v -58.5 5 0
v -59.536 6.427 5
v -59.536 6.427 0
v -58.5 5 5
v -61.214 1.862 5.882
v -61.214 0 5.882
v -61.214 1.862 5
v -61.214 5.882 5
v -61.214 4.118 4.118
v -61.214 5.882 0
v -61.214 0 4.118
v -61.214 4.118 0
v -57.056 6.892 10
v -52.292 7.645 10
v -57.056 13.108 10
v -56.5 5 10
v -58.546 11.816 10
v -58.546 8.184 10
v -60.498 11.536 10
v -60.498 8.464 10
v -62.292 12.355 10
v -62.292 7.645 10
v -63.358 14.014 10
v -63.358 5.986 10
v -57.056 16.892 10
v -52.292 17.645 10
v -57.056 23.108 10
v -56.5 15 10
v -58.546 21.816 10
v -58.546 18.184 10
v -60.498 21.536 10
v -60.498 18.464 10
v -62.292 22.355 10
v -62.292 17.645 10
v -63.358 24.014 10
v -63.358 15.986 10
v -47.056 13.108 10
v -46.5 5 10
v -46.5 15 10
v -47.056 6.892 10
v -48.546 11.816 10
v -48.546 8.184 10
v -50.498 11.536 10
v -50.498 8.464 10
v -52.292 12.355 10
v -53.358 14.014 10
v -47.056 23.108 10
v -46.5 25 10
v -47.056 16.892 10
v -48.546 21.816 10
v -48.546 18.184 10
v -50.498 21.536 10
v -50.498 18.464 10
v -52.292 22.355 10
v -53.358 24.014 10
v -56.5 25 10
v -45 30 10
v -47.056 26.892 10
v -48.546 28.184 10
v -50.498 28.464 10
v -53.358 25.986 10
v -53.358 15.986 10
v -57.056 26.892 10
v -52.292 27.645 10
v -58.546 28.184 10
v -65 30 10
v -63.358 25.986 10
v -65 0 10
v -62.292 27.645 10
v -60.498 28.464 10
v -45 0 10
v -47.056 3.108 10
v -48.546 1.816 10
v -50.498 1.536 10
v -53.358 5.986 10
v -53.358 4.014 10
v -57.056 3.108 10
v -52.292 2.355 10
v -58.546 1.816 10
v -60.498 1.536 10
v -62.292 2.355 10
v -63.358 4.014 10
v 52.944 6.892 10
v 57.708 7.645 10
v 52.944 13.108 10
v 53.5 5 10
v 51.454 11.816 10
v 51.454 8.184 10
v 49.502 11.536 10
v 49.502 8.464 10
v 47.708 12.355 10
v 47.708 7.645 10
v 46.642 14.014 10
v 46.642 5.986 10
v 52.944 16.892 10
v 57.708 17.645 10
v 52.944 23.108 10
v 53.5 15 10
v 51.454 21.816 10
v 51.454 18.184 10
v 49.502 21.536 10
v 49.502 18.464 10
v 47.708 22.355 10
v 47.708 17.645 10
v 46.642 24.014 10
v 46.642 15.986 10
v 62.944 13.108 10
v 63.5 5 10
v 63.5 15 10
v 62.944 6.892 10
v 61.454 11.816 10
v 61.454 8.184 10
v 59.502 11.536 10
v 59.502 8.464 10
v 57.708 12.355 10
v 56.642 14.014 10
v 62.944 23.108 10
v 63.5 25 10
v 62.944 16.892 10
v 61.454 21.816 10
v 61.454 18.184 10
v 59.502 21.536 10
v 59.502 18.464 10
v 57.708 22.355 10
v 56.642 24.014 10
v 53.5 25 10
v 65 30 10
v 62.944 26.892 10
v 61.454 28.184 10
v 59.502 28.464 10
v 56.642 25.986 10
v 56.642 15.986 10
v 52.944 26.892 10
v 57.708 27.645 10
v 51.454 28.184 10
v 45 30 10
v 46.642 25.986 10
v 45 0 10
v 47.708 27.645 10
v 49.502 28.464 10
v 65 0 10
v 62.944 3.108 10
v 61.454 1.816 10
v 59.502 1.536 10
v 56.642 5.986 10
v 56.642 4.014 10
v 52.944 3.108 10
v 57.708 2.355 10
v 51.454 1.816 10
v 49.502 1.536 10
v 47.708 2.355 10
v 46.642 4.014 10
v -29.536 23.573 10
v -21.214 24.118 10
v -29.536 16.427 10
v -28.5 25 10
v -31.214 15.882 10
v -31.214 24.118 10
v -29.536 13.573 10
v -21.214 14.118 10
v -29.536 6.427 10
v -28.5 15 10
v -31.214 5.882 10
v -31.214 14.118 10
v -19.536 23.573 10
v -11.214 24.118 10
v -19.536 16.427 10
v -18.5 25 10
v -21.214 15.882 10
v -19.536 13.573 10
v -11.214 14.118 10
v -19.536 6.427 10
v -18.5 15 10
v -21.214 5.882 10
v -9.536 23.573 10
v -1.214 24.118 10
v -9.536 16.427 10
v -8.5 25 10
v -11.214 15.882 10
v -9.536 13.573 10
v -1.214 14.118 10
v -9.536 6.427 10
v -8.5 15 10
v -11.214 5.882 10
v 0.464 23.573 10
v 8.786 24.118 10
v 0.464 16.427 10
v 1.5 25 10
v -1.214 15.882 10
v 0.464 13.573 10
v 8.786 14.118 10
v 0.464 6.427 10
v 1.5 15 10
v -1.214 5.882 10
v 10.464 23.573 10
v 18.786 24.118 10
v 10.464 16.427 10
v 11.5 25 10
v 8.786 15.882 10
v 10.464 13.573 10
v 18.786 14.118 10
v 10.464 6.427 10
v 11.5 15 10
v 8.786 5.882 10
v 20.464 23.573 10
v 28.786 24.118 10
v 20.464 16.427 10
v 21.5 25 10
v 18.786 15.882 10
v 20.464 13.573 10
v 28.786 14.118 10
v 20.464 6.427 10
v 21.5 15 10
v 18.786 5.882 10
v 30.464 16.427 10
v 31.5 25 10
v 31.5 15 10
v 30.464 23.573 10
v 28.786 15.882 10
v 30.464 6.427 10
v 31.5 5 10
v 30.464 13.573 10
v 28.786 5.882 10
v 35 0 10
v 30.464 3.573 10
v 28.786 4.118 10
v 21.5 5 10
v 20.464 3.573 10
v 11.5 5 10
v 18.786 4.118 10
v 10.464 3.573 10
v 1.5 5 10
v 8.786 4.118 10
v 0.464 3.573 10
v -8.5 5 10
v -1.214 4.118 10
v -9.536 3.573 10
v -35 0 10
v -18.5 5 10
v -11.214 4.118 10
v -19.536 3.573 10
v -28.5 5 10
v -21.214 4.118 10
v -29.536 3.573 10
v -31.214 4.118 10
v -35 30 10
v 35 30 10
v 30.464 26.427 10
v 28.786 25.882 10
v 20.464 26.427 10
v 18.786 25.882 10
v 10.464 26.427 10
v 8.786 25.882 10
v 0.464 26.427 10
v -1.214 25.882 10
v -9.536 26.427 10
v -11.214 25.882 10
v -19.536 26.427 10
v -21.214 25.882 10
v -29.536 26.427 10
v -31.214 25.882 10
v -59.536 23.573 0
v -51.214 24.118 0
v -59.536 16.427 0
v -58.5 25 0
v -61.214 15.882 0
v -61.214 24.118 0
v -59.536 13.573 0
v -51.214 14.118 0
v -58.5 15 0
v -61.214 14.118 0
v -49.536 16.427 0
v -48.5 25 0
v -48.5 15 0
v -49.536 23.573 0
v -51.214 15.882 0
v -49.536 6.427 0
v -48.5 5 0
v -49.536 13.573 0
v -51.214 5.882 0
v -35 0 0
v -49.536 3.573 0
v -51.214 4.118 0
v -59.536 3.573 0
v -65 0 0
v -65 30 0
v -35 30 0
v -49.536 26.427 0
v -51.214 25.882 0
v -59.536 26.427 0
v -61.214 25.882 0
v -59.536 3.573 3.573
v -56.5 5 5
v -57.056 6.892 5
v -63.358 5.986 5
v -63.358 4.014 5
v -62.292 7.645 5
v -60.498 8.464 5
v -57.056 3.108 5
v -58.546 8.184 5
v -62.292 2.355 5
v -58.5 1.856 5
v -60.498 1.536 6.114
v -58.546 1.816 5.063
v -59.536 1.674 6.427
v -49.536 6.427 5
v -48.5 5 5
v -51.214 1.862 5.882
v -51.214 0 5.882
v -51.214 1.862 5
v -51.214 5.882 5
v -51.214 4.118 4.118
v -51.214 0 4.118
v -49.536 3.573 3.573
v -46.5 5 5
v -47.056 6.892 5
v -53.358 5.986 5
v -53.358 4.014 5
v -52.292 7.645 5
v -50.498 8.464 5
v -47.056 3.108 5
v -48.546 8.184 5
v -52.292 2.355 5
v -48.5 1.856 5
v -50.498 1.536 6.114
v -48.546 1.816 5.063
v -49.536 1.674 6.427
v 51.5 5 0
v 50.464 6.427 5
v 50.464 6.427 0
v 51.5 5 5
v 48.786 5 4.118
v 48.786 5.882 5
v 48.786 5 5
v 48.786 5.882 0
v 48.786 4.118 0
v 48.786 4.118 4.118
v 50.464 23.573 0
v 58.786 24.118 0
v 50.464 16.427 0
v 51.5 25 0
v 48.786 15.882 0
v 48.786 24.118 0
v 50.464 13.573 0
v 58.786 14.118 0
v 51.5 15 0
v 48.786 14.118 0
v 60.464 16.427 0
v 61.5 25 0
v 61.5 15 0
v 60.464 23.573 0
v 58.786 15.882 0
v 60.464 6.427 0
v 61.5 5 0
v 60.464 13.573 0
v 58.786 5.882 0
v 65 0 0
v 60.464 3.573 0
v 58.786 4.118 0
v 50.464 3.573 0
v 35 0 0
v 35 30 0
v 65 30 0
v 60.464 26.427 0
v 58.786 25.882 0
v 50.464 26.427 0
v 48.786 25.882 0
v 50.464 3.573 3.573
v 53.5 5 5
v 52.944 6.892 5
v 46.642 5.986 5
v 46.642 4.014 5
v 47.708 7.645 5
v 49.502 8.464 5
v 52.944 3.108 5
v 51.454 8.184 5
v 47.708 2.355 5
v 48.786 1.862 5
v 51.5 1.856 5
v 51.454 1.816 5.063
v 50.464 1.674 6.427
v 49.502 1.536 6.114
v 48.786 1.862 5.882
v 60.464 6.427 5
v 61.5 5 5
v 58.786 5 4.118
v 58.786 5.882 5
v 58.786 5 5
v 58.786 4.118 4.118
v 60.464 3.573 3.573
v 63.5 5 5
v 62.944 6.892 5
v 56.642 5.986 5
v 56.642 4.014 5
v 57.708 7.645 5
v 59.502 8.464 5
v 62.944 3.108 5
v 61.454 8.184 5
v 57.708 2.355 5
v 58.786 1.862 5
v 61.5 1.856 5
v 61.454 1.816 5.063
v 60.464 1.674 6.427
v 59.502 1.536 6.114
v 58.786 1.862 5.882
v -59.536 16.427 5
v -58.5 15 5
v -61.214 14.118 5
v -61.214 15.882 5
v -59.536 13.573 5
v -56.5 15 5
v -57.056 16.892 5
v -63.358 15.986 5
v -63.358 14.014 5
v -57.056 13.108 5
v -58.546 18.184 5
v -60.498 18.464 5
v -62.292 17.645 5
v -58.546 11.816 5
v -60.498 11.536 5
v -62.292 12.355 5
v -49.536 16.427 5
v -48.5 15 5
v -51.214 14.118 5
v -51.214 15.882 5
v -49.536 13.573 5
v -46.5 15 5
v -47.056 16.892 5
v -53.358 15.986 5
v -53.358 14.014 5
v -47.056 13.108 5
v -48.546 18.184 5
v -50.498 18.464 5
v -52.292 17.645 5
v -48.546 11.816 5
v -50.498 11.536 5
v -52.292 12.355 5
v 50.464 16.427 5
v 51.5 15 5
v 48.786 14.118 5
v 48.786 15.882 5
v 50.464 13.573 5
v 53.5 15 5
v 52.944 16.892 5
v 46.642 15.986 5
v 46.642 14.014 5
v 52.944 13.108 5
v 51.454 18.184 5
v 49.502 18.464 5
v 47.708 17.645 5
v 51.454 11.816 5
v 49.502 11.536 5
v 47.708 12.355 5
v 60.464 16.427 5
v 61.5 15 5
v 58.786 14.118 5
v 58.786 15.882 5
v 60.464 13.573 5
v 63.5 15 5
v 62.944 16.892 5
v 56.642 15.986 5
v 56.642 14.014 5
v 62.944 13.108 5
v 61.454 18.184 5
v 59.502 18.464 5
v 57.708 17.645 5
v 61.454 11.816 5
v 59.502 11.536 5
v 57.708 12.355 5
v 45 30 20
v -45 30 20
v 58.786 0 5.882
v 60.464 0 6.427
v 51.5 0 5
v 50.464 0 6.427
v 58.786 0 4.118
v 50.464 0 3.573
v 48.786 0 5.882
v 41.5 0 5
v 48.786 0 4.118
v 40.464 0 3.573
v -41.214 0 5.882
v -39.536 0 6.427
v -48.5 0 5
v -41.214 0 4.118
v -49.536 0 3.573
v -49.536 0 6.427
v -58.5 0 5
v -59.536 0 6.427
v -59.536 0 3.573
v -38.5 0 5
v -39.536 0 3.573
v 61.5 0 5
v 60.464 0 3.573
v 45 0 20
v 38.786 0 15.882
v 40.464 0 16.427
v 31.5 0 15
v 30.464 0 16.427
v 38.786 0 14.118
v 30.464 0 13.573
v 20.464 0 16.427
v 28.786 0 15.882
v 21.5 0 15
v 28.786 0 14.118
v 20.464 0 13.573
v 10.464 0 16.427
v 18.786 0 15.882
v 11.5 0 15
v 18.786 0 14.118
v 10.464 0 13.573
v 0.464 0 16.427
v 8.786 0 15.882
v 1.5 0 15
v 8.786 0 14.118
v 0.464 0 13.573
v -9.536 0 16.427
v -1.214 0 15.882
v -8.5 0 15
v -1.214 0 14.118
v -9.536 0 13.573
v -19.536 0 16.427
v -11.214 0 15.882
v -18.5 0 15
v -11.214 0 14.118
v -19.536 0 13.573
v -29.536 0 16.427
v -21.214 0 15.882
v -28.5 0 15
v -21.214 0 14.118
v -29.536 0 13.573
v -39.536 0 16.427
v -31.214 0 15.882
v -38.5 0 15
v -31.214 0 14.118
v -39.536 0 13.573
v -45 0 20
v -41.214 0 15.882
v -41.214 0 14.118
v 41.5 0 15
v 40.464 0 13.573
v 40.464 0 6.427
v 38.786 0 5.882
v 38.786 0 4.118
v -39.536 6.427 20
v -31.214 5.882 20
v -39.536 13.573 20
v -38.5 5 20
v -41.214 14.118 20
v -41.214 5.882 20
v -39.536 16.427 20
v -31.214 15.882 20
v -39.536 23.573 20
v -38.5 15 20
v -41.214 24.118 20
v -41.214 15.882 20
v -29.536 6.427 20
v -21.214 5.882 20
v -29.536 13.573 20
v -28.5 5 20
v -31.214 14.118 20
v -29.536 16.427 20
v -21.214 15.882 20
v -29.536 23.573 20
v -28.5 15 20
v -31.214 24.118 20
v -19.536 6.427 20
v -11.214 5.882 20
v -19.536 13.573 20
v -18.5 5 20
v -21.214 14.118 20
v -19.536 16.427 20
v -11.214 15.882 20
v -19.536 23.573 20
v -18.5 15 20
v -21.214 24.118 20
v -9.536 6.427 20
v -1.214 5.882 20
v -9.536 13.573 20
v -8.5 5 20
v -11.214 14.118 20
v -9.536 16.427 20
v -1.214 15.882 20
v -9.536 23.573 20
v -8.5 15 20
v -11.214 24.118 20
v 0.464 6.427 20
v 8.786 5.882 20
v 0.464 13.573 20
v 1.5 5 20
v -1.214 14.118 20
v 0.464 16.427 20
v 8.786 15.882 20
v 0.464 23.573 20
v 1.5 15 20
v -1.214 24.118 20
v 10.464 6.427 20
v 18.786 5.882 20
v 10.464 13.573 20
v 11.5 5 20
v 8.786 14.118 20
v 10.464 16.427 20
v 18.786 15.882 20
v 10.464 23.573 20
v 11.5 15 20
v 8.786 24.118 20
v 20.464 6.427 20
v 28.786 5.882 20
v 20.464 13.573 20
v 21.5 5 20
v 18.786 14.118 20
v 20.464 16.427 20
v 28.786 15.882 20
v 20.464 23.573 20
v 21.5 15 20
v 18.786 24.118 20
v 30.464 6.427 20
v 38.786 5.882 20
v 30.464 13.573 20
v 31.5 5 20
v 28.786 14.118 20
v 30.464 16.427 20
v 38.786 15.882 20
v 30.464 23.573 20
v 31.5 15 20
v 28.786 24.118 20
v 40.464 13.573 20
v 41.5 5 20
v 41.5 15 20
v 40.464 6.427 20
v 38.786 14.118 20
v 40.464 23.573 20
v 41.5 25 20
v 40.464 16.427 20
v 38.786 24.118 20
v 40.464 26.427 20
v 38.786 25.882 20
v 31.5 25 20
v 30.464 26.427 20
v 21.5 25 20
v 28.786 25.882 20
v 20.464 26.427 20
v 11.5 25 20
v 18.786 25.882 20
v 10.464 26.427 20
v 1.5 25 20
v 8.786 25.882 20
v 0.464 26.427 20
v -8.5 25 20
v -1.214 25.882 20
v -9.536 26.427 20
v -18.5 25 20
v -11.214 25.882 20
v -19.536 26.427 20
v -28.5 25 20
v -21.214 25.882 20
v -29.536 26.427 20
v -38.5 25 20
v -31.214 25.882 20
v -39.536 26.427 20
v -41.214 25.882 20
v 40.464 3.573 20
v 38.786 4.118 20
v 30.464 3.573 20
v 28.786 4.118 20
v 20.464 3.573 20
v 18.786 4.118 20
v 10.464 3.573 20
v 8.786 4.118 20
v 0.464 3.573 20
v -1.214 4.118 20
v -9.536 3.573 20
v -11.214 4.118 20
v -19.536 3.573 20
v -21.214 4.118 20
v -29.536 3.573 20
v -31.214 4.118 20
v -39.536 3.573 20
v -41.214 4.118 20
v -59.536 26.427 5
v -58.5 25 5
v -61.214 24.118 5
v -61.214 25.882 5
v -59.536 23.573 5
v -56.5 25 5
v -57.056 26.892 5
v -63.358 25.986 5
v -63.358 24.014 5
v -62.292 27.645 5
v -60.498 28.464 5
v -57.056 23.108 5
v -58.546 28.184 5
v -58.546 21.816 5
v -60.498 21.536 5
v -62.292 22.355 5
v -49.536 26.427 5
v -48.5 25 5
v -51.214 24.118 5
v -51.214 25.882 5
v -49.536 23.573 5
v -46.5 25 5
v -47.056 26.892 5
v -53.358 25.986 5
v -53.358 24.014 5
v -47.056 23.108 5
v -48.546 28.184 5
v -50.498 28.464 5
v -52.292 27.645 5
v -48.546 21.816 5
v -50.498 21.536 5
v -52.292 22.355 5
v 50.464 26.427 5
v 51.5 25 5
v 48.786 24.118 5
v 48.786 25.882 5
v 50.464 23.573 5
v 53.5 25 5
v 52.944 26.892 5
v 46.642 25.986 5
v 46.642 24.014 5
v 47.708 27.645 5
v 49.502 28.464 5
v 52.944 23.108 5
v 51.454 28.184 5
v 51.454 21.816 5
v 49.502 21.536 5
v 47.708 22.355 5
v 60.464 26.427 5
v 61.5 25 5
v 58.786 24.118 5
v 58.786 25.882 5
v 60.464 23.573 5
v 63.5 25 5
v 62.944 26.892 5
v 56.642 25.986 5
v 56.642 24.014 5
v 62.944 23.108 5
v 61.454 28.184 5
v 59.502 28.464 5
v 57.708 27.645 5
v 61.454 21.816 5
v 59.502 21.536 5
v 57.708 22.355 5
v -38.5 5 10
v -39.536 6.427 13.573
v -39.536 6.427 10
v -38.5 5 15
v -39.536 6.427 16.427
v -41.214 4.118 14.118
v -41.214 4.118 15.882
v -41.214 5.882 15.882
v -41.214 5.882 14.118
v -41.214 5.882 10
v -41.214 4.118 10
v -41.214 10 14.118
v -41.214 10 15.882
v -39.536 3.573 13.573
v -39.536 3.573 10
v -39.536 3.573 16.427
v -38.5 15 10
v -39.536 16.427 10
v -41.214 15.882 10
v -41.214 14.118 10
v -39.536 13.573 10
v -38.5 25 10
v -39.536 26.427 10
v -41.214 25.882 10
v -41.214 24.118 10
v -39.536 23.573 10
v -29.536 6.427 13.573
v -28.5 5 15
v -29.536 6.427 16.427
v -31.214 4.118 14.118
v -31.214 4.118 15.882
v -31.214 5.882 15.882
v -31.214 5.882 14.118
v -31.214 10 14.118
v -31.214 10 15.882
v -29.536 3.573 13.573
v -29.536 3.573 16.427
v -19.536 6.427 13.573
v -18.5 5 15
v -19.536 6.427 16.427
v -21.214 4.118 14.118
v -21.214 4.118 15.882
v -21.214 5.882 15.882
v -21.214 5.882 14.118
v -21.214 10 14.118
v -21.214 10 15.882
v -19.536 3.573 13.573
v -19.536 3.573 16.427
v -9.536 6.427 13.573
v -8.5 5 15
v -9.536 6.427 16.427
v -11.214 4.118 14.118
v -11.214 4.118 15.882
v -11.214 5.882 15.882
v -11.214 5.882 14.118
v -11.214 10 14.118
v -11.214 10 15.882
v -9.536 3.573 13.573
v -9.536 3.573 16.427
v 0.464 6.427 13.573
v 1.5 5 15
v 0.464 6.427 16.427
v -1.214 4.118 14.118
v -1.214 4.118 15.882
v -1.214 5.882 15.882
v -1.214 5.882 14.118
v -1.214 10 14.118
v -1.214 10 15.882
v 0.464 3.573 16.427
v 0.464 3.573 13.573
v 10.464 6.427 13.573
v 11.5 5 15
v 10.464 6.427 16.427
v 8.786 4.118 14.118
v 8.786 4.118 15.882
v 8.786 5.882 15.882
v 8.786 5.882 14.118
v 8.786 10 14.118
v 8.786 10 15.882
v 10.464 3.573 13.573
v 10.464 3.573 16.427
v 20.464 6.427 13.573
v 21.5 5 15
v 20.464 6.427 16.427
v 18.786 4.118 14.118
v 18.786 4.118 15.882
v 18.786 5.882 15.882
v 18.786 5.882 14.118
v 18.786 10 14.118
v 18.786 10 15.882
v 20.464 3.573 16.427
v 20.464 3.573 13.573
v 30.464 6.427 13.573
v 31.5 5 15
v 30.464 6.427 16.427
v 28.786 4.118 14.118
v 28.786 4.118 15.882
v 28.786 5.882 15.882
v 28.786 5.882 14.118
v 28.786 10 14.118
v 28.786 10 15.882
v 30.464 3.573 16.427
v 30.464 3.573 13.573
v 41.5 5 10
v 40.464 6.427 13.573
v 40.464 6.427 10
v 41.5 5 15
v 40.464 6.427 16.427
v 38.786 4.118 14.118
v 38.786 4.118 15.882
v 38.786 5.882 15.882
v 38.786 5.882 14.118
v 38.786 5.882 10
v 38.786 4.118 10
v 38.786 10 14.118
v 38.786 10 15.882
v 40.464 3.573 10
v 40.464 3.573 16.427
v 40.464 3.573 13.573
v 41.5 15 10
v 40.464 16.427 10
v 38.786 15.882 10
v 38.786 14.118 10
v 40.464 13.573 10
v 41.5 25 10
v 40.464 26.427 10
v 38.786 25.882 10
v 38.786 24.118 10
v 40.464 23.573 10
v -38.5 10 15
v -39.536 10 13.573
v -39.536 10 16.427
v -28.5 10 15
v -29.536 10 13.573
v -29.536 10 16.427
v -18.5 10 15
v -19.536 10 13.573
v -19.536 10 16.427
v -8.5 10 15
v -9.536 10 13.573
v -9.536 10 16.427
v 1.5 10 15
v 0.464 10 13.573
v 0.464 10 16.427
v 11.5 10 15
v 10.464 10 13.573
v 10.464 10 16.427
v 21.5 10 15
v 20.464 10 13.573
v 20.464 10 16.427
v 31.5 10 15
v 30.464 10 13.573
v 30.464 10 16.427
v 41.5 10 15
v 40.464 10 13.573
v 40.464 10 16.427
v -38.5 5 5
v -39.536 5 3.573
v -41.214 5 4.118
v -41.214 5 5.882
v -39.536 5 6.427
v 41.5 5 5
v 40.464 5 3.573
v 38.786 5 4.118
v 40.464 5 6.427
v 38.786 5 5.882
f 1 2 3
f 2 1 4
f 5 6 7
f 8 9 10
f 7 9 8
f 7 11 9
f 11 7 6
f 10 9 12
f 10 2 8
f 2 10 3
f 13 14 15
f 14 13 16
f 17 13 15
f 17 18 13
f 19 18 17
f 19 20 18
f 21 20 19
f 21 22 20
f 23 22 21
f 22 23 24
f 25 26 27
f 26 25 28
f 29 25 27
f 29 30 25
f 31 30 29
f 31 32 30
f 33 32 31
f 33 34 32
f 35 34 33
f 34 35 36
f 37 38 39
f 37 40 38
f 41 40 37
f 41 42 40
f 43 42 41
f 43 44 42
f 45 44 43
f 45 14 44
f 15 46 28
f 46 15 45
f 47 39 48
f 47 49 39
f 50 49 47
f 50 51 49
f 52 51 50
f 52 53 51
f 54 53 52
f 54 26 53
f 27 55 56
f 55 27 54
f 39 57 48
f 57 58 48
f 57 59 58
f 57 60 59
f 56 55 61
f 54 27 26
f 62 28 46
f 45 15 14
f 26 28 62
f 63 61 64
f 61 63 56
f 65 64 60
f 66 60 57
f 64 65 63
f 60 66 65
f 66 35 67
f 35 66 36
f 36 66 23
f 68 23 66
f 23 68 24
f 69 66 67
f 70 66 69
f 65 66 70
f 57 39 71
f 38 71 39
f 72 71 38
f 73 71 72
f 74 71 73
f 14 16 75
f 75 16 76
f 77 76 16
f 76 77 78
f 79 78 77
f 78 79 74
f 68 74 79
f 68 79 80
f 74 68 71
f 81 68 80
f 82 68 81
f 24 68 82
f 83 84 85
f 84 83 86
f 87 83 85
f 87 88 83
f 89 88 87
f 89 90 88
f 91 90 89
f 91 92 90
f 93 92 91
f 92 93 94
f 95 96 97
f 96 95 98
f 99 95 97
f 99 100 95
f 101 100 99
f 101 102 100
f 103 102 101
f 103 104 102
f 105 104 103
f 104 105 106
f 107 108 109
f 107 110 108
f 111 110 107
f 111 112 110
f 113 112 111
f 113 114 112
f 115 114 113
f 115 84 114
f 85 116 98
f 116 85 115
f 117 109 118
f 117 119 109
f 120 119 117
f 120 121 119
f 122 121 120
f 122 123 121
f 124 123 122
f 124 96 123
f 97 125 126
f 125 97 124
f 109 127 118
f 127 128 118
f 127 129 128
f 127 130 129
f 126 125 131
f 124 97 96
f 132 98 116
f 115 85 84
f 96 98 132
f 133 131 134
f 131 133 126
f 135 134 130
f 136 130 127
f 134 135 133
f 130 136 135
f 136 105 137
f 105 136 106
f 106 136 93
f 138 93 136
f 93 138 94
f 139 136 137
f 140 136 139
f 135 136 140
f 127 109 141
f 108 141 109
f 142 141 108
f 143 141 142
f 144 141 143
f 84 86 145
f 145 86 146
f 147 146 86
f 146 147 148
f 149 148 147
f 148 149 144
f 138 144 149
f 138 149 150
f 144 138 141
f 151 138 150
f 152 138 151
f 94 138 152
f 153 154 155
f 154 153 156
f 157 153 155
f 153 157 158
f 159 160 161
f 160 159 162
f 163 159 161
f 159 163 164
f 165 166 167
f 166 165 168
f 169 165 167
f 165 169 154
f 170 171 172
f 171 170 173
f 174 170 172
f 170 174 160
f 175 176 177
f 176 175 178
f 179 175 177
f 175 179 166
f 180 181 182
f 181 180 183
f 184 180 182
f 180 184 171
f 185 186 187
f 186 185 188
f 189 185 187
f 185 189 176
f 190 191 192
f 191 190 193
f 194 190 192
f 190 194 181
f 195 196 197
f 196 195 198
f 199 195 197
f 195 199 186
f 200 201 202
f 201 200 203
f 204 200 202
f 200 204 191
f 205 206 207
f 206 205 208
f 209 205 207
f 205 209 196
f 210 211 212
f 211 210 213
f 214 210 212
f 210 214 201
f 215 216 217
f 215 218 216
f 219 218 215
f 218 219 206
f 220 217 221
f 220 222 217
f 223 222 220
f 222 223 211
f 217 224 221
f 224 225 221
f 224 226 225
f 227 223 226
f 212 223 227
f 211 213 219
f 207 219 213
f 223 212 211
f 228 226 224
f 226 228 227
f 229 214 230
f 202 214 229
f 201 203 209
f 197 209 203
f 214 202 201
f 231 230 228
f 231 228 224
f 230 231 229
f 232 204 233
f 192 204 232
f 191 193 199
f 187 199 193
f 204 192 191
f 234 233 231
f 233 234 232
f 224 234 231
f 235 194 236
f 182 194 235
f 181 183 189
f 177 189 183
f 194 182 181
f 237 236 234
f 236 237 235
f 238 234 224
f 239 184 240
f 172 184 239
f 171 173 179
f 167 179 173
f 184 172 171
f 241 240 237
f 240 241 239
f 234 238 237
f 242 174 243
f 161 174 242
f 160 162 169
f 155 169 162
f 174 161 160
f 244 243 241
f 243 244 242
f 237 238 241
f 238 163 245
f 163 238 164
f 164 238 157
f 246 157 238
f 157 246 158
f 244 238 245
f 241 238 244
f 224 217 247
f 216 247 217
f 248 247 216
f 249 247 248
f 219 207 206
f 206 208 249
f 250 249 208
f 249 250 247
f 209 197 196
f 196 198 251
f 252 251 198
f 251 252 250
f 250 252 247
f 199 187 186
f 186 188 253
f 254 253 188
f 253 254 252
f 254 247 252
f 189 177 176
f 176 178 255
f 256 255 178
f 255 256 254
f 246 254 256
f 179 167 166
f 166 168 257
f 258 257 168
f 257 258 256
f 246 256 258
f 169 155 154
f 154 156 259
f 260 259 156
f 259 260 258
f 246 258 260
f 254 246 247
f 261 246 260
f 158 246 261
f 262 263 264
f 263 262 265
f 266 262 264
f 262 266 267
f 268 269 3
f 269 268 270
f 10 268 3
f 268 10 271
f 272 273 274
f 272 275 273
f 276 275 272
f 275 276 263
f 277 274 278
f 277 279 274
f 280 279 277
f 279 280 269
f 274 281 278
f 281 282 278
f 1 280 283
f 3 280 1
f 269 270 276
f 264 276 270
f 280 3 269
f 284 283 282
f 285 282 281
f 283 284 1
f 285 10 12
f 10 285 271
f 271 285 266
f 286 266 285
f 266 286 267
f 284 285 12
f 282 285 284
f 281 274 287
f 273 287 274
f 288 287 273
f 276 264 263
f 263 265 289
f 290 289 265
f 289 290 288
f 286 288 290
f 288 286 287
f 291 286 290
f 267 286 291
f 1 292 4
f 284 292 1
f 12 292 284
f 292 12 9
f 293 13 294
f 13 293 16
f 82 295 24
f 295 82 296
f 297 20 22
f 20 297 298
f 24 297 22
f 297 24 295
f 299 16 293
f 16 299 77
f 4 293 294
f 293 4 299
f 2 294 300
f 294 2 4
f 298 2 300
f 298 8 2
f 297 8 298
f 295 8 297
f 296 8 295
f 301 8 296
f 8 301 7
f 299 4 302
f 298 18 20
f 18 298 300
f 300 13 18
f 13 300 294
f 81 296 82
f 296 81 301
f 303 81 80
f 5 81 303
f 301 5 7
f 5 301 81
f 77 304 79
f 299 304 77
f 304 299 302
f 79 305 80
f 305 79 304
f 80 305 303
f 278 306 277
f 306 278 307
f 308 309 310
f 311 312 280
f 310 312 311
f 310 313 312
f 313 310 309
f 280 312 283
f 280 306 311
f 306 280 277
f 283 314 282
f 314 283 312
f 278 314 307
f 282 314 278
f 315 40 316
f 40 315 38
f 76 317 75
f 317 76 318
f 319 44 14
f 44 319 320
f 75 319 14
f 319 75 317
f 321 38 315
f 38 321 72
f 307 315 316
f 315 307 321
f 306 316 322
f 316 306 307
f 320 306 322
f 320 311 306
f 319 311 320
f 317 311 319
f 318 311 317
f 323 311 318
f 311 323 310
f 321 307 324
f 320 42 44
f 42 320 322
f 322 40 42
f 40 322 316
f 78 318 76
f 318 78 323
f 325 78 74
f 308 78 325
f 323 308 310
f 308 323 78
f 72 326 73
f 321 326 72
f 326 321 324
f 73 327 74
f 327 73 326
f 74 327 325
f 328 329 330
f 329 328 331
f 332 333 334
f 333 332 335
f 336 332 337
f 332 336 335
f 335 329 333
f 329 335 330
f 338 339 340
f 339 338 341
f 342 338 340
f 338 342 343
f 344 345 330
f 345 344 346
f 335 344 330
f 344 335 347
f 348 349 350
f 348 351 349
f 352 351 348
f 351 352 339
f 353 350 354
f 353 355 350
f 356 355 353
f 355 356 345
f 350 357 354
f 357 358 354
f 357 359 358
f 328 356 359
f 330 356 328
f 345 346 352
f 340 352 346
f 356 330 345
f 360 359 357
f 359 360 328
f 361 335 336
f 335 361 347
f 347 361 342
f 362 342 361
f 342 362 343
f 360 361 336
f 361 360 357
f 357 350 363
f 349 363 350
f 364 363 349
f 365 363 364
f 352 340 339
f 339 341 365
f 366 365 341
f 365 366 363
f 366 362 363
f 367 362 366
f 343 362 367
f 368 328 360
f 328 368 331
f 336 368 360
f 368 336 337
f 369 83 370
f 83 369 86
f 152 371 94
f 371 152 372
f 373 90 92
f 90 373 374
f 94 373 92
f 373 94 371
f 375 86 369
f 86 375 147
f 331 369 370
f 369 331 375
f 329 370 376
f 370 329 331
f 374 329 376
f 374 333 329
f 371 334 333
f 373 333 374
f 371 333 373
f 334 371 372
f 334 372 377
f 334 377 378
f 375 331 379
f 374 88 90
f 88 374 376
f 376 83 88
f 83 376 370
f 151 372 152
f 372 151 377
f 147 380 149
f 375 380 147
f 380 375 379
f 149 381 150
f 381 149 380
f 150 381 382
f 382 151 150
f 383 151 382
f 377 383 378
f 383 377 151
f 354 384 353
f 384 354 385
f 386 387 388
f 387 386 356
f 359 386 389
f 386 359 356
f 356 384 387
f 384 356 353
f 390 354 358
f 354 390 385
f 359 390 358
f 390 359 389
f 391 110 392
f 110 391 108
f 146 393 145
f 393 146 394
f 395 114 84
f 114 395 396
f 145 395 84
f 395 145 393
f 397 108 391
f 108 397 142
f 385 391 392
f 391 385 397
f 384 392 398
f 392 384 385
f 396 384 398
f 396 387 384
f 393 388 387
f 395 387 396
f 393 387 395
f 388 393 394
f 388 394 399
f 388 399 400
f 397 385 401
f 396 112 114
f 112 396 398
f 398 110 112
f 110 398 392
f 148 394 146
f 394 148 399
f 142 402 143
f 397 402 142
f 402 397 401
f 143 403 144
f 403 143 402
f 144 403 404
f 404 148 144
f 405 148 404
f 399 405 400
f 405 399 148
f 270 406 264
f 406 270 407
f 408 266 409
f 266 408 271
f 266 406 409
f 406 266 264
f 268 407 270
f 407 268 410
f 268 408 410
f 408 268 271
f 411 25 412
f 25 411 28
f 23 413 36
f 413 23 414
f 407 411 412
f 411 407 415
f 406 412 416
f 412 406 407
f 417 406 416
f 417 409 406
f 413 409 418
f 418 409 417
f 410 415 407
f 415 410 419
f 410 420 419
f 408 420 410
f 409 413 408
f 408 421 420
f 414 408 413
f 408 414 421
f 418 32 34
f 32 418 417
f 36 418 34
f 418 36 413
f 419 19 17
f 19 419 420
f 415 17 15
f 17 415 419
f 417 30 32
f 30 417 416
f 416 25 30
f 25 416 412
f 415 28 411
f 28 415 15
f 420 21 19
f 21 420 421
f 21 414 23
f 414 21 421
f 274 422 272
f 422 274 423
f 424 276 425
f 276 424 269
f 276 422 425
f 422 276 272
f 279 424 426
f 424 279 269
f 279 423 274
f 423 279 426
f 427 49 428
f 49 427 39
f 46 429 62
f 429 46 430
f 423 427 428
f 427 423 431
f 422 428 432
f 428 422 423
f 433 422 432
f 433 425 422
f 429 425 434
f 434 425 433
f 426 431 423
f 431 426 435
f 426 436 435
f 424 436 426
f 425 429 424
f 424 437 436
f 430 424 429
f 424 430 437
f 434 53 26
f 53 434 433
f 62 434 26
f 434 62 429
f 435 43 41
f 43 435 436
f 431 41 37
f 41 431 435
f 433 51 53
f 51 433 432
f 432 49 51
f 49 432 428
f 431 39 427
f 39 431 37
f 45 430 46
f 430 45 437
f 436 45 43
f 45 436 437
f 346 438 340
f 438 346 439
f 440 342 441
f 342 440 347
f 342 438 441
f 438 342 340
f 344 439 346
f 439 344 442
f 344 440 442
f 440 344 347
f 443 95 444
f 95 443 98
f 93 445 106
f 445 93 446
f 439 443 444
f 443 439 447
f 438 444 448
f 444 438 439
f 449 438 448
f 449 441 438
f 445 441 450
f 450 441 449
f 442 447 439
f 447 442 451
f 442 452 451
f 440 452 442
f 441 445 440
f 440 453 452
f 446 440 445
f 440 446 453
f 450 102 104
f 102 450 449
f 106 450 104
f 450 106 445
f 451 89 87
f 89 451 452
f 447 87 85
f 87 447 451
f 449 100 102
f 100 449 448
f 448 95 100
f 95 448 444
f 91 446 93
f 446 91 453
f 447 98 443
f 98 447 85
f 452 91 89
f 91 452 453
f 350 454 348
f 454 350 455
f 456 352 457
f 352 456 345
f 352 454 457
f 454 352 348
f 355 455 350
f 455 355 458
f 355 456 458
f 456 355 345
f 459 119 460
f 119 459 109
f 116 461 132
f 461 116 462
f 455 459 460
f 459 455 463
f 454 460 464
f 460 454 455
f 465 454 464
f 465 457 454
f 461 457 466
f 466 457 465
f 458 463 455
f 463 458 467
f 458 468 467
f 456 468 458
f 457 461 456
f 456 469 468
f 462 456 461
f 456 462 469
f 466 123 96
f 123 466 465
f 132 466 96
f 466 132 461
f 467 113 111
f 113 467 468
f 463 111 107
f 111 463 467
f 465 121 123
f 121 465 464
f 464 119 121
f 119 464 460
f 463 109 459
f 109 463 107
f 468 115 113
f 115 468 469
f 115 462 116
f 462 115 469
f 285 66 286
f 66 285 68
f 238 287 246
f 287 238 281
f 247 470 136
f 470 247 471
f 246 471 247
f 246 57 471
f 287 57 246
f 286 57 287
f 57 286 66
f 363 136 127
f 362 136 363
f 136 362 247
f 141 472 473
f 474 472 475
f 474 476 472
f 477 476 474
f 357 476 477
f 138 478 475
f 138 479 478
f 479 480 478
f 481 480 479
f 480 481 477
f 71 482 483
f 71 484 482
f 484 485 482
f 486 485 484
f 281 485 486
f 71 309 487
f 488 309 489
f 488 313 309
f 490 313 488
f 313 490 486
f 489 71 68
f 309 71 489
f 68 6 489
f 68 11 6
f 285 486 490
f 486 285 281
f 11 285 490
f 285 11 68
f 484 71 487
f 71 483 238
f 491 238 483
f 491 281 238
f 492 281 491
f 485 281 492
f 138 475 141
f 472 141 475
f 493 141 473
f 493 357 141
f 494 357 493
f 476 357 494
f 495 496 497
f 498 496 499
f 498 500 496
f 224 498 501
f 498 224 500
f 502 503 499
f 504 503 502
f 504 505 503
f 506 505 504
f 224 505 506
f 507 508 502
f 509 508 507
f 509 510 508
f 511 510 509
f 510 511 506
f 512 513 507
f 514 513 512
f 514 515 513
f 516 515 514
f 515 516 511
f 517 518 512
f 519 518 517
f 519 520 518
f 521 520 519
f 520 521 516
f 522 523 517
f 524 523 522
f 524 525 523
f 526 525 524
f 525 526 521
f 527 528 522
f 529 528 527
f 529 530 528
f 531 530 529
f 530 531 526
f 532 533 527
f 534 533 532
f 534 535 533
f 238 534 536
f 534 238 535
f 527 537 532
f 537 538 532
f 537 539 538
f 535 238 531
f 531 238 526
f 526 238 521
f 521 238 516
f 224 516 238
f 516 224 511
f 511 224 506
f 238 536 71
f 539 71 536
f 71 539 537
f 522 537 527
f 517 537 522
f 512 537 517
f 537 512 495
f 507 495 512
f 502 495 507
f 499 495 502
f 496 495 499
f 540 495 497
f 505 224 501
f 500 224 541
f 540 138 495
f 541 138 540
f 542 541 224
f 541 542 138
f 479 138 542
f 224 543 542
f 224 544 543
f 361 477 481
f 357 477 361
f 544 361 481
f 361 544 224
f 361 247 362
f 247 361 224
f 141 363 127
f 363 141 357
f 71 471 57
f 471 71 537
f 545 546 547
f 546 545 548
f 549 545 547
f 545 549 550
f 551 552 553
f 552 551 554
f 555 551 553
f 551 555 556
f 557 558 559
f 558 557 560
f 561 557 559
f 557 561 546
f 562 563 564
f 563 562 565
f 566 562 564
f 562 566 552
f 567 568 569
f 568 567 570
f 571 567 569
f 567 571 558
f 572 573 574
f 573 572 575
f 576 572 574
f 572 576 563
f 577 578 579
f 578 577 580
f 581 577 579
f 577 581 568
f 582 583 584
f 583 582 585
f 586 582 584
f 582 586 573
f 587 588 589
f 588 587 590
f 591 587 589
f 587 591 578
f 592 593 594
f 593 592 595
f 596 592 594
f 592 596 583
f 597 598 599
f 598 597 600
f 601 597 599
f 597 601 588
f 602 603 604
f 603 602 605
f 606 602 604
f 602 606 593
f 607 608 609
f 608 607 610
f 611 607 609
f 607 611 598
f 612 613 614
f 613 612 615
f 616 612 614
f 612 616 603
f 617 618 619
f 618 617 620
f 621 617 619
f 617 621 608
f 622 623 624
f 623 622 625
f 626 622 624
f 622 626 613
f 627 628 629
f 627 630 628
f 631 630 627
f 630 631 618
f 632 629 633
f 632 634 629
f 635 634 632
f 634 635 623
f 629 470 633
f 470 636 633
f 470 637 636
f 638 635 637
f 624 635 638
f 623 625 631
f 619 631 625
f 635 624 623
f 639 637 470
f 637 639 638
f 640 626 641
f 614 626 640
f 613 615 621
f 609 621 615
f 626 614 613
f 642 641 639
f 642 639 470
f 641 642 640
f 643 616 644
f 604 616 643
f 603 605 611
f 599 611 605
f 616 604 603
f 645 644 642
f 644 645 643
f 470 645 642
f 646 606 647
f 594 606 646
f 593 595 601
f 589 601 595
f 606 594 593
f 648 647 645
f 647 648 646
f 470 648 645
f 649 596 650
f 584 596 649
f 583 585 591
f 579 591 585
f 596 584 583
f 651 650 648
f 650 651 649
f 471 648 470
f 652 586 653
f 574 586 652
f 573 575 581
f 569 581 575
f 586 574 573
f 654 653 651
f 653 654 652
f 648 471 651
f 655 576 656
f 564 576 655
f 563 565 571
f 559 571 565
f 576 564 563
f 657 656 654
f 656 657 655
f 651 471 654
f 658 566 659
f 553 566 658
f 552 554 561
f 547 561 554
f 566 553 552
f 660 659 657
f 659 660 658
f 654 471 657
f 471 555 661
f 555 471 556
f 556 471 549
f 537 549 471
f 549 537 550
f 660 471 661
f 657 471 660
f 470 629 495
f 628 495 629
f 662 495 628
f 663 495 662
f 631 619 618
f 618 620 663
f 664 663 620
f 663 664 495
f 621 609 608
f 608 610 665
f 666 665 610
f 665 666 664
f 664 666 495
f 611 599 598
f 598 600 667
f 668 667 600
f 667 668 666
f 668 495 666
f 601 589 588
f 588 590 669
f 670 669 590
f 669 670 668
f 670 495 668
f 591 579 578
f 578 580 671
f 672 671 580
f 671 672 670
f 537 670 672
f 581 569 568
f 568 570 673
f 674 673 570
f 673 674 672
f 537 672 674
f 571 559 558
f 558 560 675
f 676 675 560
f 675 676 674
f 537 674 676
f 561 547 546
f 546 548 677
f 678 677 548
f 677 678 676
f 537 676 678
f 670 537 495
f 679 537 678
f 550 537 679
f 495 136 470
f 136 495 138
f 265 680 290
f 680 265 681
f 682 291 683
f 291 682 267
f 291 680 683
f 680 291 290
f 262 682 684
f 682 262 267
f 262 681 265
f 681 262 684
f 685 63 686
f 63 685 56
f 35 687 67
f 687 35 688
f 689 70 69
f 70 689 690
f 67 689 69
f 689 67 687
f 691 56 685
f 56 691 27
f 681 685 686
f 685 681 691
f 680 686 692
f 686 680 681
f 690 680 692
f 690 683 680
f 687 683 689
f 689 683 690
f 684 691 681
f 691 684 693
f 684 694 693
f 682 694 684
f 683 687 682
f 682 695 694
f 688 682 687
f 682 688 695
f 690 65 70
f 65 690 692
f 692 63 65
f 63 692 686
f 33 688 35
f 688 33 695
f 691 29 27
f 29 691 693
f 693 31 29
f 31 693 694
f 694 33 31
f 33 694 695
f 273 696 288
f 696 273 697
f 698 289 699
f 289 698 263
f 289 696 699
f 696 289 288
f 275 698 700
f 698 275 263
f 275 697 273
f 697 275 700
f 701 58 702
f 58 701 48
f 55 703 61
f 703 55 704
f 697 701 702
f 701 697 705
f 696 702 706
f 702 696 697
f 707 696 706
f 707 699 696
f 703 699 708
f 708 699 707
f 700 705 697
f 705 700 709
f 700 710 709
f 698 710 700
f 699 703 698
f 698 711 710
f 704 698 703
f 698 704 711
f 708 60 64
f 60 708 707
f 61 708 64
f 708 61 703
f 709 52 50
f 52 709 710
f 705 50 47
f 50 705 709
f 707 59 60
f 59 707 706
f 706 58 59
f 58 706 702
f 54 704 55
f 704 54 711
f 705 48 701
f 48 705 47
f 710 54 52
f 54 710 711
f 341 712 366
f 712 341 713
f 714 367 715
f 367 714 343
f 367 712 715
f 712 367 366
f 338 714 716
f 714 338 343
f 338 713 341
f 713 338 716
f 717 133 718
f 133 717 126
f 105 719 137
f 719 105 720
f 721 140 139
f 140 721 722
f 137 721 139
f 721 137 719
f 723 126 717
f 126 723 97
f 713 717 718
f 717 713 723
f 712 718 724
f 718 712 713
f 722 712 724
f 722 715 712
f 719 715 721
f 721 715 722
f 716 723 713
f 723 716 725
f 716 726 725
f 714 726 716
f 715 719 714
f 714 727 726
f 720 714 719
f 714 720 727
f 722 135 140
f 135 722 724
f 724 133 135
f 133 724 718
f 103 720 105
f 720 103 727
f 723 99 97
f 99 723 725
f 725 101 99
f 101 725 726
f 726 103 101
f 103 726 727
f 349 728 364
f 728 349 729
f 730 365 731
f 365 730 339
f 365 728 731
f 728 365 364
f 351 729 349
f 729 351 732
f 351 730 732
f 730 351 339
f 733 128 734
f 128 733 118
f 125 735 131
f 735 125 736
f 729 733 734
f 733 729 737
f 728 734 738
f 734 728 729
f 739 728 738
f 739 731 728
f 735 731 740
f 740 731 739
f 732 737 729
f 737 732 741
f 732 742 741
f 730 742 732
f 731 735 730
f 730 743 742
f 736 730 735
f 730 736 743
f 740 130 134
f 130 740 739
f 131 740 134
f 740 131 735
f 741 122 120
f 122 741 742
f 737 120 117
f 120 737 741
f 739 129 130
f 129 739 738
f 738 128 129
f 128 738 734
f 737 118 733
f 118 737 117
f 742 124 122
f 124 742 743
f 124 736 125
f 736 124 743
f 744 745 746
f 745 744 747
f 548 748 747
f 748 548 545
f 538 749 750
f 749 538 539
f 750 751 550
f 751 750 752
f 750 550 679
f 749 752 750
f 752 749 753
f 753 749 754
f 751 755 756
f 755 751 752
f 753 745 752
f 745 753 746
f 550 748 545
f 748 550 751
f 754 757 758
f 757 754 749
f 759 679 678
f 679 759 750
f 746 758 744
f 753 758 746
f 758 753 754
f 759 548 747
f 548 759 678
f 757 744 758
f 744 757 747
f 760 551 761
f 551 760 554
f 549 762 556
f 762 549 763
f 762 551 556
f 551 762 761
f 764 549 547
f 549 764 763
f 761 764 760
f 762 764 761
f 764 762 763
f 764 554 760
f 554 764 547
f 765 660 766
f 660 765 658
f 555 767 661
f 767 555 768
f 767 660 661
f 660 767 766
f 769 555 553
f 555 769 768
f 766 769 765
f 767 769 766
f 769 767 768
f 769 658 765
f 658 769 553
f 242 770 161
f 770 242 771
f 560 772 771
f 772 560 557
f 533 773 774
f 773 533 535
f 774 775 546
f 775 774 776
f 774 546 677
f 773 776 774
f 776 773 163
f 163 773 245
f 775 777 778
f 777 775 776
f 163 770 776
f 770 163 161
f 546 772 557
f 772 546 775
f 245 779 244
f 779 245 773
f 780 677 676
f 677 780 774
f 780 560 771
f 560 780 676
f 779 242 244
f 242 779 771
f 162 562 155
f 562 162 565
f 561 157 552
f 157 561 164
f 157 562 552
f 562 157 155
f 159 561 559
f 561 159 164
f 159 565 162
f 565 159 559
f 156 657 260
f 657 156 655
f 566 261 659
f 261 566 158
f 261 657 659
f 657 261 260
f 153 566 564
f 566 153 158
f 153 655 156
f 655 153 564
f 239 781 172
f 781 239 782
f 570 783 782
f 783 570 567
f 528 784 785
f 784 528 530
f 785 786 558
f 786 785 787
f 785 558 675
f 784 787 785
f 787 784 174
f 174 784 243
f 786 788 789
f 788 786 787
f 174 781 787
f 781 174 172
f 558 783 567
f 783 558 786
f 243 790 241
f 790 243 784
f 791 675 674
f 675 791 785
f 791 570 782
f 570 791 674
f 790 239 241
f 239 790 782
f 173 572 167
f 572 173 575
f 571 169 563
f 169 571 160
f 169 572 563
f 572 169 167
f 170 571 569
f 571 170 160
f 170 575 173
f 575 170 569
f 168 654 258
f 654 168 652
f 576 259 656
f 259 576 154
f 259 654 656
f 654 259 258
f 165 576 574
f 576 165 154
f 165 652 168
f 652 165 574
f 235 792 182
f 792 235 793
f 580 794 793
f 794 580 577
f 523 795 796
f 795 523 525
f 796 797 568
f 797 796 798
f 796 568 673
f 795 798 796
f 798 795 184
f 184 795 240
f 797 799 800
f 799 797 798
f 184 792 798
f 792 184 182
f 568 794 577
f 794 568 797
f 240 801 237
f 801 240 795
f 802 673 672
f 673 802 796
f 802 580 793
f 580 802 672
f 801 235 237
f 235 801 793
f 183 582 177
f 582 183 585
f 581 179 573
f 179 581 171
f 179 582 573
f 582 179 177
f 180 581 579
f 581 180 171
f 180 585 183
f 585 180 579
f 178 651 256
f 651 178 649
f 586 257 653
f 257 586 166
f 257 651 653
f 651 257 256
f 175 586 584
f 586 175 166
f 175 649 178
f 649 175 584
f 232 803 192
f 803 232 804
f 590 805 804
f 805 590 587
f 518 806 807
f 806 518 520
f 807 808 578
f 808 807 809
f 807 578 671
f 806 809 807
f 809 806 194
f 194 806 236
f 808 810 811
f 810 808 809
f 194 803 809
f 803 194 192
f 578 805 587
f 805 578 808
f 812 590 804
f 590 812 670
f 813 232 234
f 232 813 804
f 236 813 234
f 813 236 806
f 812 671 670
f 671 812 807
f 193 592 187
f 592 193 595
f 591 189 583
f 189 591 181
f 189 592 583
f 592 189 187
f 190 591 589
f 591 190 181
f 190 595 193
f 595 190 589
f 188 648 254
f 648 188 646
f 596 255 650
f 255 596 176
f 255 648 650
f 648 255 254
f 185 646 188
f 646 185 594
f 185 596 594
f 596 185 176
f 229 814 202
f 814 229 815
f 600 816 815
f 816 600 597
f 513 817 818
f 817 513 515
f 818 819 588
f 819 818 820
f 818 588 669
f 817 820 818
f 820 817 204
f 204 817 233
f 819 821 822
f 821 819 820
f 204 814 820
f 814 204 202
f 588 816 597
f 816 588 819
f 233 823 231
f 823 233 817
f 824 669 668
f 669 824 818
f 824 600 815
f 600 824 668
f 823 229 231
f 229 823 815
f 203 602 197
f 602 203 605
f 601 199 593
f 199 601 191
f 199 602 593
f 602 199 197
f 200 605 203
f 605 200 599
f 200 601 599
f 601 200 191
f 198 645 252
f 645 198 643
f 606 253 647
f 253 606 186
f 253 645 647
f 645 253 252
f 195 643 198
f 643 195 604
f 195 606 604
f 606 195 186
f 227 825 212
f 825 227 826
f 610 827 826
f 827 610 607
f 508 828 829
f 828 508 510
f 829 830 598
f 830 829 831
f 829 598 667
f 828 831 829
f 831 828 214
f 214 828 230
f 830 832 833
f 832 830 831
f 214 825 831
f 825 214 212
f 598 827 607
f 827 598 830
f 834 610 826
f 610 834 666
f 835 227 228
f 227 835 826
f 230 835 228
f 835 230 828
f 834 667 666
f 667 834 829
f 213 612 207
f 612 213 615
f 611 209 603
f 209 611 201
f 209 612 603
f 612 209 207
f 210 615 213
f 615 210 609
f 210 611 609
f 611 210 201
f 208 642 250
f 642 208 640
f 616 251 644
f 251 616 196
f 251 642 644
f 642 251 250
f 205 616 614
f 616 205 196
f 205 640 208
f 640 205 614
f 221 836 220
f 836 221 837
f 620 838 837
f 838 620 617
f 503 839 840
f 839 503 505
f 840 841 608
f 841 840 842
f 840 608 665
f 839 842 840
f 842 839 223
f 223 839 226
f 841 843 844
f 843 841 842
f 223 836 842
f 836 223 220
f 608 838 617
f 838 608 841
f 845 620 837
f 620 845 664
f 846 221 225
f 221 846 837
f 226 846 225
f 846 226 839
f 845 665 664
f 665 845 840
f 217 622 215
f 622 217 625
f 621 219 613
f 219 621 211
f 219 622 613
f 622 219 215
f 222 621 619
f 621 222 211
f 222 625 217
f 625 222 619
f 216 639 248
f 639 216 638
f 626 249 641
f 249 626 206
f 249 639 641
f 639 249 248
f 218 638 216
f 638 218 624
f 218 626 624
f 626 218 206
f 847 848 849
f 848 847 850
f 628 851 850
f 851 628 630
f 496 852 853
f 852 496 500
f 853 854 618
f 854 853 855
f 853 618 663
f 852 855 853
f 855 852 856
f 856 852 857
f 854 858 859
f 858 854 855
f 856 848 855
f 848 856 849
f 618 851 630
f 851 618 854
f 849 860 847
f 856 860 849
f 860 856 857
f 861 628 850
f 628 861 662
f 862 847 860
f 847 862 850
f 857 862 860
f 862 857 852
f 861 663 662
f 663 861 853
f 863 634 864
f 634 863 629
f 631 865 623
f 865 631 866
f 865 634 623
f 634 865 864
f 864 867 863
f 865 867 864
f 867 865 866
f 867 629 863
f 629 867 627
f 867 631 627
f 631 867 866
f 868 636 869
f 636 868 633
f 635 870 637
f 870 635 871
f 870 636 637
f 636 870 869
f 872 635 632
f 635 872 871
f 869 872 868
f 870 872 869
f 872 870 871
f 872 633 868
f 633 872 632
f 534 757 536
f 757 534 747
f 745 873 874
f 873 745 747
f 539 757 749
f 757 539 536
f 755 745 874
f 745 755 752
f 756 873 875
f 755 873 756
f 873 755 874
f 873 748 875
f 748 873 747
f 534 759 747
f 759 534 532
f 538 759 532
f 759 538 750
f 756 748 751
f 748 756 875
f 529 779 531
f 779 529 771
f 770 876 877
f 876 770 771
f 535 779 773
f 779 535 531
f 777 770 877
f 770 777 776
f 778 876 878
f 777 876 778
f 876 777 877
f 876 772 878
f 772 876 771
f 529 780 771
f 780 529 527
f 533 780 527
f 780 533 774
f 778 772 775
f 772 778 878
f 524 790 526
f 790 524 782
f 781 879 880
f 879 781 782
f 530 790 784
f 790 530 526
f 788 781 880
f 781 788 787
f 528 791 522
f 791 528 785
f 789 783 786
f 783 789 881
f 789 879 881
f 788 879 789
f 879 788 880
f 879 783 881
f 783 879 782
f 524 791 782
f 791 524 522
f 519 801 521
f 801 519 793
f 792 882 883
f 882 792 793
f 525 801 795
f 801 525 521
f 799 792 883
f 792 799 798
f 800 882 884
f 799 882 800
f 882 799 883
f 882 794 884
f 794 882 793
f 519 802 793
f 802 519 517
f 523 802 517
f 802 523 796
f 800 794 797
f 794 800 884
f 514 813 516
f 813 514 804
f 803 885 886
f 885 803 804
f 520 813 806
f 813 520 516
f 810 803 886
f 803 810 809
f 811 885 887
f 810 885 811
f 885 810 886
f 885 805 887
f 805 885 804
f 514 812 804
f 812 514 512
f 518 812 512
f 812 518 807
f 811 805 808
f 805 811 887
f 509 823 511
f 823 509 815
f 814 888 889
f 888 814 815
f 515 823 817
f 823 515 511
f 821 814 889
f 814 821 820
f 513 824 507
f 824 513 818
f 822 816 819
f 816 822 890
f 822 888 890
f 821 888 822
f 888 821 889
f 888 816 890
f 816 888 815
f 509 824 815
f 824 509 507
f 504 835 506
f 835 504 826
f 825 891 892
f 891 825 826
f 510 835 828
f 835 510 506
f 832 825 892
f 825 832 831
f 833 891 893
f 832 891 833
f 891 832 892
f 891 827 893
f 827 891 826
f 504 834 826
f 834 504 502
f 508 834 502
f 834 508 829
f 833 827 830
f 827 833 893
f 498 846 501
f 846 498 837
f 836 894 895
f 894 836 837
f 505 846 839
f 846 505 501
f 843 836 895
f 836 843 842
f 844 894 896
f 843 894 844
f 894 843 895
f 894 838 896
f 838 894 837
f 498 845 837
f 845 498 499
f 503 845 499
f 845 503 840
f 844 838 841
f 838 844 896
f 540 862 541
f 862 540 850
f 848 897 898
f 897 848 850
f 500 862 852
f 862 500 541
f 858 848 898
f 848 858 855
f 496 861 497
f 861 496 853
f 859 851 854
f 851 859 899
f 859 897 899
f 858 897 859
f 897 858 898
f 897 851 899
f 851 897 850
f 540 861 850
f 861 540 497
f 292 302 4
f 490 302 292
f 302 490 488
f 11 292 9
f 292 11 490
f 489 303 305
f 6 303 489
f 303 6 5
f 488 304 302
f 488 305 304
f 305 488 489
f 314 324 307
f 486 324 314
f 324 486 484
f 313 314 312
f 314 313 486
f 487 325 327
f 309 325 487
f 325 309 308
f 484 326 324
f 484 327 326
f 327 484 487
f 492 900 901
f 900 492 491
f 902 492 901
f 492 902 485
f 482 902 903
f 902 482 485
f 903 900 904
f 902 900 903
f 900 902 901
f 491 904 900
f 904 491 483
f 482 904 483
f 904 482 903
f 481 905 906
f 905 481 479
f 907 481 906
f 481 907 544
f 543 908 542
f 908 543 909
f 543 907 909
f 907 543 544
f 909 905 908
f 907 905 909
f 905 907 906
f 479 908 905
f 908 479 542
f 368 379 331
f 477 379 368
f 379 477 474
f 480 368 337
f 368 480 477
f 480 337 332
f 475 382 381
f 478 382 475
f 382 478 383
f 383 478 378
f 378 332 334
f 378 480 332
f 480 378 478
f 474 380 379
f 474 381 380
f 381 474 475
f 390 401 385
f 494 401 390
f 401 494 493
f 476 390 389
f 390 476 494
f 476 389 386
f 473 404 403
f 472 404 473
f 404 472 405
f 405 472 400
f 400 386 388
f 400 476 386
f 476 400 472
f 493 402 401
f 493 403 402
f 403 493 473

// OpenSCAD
module main() {
	difference() {
		union() {
			for(x = [-1, 1])
				translate([x*(30/2 + 35), 30/2, 10/2])
					cube([30, 30, 10], center = true);
			translate([0, 30/2, 10/2 + 10])
				cube([90, 30, 10], center = true);
		}

		// Grid
		for(y = [5:10:25]) {
			for(x = [-60:10:-50])
				translate([x, y]) {
					cylinder(d = 3, h = 10);
					translate([0, 0, 5])
						cylinder(d = 7, h = 5);
				}
			for(x = [50:10:60])
				translate([x, y]) {
					cylinder(d = 3, h = 10);
					translate([0, 0, 5])
						cylinder(d = 7, h = 5);
				}
		}

		for(x = [-40:10:40]) {
			translate([x, 0, 15])
				rotate([-90, 0, 0])
					cylinder(d = 3, h = 10);
			for(y = [5:10:25])
				translate([x, y, 10])
					cylinder(d = 3, h = 10);
		}

		for(x = [-30:10:30])
			for(y = [5:10:25])
				translate([x, y, 5])
					cylinder(d = 3, h = 5);

		for(z = [5]) {
			for(x = [-60:10:-40])
				translate([x, 0, z])
					rotate([-90, 0, 0])
						cylinder(d = 3, h = 5);
			for(x = [40:10:60])
				translate([x, 0, z])
					rotate([-90, 0, 0])
						cylinder(d = 3, h = 5);
		}
	}
}

main();
